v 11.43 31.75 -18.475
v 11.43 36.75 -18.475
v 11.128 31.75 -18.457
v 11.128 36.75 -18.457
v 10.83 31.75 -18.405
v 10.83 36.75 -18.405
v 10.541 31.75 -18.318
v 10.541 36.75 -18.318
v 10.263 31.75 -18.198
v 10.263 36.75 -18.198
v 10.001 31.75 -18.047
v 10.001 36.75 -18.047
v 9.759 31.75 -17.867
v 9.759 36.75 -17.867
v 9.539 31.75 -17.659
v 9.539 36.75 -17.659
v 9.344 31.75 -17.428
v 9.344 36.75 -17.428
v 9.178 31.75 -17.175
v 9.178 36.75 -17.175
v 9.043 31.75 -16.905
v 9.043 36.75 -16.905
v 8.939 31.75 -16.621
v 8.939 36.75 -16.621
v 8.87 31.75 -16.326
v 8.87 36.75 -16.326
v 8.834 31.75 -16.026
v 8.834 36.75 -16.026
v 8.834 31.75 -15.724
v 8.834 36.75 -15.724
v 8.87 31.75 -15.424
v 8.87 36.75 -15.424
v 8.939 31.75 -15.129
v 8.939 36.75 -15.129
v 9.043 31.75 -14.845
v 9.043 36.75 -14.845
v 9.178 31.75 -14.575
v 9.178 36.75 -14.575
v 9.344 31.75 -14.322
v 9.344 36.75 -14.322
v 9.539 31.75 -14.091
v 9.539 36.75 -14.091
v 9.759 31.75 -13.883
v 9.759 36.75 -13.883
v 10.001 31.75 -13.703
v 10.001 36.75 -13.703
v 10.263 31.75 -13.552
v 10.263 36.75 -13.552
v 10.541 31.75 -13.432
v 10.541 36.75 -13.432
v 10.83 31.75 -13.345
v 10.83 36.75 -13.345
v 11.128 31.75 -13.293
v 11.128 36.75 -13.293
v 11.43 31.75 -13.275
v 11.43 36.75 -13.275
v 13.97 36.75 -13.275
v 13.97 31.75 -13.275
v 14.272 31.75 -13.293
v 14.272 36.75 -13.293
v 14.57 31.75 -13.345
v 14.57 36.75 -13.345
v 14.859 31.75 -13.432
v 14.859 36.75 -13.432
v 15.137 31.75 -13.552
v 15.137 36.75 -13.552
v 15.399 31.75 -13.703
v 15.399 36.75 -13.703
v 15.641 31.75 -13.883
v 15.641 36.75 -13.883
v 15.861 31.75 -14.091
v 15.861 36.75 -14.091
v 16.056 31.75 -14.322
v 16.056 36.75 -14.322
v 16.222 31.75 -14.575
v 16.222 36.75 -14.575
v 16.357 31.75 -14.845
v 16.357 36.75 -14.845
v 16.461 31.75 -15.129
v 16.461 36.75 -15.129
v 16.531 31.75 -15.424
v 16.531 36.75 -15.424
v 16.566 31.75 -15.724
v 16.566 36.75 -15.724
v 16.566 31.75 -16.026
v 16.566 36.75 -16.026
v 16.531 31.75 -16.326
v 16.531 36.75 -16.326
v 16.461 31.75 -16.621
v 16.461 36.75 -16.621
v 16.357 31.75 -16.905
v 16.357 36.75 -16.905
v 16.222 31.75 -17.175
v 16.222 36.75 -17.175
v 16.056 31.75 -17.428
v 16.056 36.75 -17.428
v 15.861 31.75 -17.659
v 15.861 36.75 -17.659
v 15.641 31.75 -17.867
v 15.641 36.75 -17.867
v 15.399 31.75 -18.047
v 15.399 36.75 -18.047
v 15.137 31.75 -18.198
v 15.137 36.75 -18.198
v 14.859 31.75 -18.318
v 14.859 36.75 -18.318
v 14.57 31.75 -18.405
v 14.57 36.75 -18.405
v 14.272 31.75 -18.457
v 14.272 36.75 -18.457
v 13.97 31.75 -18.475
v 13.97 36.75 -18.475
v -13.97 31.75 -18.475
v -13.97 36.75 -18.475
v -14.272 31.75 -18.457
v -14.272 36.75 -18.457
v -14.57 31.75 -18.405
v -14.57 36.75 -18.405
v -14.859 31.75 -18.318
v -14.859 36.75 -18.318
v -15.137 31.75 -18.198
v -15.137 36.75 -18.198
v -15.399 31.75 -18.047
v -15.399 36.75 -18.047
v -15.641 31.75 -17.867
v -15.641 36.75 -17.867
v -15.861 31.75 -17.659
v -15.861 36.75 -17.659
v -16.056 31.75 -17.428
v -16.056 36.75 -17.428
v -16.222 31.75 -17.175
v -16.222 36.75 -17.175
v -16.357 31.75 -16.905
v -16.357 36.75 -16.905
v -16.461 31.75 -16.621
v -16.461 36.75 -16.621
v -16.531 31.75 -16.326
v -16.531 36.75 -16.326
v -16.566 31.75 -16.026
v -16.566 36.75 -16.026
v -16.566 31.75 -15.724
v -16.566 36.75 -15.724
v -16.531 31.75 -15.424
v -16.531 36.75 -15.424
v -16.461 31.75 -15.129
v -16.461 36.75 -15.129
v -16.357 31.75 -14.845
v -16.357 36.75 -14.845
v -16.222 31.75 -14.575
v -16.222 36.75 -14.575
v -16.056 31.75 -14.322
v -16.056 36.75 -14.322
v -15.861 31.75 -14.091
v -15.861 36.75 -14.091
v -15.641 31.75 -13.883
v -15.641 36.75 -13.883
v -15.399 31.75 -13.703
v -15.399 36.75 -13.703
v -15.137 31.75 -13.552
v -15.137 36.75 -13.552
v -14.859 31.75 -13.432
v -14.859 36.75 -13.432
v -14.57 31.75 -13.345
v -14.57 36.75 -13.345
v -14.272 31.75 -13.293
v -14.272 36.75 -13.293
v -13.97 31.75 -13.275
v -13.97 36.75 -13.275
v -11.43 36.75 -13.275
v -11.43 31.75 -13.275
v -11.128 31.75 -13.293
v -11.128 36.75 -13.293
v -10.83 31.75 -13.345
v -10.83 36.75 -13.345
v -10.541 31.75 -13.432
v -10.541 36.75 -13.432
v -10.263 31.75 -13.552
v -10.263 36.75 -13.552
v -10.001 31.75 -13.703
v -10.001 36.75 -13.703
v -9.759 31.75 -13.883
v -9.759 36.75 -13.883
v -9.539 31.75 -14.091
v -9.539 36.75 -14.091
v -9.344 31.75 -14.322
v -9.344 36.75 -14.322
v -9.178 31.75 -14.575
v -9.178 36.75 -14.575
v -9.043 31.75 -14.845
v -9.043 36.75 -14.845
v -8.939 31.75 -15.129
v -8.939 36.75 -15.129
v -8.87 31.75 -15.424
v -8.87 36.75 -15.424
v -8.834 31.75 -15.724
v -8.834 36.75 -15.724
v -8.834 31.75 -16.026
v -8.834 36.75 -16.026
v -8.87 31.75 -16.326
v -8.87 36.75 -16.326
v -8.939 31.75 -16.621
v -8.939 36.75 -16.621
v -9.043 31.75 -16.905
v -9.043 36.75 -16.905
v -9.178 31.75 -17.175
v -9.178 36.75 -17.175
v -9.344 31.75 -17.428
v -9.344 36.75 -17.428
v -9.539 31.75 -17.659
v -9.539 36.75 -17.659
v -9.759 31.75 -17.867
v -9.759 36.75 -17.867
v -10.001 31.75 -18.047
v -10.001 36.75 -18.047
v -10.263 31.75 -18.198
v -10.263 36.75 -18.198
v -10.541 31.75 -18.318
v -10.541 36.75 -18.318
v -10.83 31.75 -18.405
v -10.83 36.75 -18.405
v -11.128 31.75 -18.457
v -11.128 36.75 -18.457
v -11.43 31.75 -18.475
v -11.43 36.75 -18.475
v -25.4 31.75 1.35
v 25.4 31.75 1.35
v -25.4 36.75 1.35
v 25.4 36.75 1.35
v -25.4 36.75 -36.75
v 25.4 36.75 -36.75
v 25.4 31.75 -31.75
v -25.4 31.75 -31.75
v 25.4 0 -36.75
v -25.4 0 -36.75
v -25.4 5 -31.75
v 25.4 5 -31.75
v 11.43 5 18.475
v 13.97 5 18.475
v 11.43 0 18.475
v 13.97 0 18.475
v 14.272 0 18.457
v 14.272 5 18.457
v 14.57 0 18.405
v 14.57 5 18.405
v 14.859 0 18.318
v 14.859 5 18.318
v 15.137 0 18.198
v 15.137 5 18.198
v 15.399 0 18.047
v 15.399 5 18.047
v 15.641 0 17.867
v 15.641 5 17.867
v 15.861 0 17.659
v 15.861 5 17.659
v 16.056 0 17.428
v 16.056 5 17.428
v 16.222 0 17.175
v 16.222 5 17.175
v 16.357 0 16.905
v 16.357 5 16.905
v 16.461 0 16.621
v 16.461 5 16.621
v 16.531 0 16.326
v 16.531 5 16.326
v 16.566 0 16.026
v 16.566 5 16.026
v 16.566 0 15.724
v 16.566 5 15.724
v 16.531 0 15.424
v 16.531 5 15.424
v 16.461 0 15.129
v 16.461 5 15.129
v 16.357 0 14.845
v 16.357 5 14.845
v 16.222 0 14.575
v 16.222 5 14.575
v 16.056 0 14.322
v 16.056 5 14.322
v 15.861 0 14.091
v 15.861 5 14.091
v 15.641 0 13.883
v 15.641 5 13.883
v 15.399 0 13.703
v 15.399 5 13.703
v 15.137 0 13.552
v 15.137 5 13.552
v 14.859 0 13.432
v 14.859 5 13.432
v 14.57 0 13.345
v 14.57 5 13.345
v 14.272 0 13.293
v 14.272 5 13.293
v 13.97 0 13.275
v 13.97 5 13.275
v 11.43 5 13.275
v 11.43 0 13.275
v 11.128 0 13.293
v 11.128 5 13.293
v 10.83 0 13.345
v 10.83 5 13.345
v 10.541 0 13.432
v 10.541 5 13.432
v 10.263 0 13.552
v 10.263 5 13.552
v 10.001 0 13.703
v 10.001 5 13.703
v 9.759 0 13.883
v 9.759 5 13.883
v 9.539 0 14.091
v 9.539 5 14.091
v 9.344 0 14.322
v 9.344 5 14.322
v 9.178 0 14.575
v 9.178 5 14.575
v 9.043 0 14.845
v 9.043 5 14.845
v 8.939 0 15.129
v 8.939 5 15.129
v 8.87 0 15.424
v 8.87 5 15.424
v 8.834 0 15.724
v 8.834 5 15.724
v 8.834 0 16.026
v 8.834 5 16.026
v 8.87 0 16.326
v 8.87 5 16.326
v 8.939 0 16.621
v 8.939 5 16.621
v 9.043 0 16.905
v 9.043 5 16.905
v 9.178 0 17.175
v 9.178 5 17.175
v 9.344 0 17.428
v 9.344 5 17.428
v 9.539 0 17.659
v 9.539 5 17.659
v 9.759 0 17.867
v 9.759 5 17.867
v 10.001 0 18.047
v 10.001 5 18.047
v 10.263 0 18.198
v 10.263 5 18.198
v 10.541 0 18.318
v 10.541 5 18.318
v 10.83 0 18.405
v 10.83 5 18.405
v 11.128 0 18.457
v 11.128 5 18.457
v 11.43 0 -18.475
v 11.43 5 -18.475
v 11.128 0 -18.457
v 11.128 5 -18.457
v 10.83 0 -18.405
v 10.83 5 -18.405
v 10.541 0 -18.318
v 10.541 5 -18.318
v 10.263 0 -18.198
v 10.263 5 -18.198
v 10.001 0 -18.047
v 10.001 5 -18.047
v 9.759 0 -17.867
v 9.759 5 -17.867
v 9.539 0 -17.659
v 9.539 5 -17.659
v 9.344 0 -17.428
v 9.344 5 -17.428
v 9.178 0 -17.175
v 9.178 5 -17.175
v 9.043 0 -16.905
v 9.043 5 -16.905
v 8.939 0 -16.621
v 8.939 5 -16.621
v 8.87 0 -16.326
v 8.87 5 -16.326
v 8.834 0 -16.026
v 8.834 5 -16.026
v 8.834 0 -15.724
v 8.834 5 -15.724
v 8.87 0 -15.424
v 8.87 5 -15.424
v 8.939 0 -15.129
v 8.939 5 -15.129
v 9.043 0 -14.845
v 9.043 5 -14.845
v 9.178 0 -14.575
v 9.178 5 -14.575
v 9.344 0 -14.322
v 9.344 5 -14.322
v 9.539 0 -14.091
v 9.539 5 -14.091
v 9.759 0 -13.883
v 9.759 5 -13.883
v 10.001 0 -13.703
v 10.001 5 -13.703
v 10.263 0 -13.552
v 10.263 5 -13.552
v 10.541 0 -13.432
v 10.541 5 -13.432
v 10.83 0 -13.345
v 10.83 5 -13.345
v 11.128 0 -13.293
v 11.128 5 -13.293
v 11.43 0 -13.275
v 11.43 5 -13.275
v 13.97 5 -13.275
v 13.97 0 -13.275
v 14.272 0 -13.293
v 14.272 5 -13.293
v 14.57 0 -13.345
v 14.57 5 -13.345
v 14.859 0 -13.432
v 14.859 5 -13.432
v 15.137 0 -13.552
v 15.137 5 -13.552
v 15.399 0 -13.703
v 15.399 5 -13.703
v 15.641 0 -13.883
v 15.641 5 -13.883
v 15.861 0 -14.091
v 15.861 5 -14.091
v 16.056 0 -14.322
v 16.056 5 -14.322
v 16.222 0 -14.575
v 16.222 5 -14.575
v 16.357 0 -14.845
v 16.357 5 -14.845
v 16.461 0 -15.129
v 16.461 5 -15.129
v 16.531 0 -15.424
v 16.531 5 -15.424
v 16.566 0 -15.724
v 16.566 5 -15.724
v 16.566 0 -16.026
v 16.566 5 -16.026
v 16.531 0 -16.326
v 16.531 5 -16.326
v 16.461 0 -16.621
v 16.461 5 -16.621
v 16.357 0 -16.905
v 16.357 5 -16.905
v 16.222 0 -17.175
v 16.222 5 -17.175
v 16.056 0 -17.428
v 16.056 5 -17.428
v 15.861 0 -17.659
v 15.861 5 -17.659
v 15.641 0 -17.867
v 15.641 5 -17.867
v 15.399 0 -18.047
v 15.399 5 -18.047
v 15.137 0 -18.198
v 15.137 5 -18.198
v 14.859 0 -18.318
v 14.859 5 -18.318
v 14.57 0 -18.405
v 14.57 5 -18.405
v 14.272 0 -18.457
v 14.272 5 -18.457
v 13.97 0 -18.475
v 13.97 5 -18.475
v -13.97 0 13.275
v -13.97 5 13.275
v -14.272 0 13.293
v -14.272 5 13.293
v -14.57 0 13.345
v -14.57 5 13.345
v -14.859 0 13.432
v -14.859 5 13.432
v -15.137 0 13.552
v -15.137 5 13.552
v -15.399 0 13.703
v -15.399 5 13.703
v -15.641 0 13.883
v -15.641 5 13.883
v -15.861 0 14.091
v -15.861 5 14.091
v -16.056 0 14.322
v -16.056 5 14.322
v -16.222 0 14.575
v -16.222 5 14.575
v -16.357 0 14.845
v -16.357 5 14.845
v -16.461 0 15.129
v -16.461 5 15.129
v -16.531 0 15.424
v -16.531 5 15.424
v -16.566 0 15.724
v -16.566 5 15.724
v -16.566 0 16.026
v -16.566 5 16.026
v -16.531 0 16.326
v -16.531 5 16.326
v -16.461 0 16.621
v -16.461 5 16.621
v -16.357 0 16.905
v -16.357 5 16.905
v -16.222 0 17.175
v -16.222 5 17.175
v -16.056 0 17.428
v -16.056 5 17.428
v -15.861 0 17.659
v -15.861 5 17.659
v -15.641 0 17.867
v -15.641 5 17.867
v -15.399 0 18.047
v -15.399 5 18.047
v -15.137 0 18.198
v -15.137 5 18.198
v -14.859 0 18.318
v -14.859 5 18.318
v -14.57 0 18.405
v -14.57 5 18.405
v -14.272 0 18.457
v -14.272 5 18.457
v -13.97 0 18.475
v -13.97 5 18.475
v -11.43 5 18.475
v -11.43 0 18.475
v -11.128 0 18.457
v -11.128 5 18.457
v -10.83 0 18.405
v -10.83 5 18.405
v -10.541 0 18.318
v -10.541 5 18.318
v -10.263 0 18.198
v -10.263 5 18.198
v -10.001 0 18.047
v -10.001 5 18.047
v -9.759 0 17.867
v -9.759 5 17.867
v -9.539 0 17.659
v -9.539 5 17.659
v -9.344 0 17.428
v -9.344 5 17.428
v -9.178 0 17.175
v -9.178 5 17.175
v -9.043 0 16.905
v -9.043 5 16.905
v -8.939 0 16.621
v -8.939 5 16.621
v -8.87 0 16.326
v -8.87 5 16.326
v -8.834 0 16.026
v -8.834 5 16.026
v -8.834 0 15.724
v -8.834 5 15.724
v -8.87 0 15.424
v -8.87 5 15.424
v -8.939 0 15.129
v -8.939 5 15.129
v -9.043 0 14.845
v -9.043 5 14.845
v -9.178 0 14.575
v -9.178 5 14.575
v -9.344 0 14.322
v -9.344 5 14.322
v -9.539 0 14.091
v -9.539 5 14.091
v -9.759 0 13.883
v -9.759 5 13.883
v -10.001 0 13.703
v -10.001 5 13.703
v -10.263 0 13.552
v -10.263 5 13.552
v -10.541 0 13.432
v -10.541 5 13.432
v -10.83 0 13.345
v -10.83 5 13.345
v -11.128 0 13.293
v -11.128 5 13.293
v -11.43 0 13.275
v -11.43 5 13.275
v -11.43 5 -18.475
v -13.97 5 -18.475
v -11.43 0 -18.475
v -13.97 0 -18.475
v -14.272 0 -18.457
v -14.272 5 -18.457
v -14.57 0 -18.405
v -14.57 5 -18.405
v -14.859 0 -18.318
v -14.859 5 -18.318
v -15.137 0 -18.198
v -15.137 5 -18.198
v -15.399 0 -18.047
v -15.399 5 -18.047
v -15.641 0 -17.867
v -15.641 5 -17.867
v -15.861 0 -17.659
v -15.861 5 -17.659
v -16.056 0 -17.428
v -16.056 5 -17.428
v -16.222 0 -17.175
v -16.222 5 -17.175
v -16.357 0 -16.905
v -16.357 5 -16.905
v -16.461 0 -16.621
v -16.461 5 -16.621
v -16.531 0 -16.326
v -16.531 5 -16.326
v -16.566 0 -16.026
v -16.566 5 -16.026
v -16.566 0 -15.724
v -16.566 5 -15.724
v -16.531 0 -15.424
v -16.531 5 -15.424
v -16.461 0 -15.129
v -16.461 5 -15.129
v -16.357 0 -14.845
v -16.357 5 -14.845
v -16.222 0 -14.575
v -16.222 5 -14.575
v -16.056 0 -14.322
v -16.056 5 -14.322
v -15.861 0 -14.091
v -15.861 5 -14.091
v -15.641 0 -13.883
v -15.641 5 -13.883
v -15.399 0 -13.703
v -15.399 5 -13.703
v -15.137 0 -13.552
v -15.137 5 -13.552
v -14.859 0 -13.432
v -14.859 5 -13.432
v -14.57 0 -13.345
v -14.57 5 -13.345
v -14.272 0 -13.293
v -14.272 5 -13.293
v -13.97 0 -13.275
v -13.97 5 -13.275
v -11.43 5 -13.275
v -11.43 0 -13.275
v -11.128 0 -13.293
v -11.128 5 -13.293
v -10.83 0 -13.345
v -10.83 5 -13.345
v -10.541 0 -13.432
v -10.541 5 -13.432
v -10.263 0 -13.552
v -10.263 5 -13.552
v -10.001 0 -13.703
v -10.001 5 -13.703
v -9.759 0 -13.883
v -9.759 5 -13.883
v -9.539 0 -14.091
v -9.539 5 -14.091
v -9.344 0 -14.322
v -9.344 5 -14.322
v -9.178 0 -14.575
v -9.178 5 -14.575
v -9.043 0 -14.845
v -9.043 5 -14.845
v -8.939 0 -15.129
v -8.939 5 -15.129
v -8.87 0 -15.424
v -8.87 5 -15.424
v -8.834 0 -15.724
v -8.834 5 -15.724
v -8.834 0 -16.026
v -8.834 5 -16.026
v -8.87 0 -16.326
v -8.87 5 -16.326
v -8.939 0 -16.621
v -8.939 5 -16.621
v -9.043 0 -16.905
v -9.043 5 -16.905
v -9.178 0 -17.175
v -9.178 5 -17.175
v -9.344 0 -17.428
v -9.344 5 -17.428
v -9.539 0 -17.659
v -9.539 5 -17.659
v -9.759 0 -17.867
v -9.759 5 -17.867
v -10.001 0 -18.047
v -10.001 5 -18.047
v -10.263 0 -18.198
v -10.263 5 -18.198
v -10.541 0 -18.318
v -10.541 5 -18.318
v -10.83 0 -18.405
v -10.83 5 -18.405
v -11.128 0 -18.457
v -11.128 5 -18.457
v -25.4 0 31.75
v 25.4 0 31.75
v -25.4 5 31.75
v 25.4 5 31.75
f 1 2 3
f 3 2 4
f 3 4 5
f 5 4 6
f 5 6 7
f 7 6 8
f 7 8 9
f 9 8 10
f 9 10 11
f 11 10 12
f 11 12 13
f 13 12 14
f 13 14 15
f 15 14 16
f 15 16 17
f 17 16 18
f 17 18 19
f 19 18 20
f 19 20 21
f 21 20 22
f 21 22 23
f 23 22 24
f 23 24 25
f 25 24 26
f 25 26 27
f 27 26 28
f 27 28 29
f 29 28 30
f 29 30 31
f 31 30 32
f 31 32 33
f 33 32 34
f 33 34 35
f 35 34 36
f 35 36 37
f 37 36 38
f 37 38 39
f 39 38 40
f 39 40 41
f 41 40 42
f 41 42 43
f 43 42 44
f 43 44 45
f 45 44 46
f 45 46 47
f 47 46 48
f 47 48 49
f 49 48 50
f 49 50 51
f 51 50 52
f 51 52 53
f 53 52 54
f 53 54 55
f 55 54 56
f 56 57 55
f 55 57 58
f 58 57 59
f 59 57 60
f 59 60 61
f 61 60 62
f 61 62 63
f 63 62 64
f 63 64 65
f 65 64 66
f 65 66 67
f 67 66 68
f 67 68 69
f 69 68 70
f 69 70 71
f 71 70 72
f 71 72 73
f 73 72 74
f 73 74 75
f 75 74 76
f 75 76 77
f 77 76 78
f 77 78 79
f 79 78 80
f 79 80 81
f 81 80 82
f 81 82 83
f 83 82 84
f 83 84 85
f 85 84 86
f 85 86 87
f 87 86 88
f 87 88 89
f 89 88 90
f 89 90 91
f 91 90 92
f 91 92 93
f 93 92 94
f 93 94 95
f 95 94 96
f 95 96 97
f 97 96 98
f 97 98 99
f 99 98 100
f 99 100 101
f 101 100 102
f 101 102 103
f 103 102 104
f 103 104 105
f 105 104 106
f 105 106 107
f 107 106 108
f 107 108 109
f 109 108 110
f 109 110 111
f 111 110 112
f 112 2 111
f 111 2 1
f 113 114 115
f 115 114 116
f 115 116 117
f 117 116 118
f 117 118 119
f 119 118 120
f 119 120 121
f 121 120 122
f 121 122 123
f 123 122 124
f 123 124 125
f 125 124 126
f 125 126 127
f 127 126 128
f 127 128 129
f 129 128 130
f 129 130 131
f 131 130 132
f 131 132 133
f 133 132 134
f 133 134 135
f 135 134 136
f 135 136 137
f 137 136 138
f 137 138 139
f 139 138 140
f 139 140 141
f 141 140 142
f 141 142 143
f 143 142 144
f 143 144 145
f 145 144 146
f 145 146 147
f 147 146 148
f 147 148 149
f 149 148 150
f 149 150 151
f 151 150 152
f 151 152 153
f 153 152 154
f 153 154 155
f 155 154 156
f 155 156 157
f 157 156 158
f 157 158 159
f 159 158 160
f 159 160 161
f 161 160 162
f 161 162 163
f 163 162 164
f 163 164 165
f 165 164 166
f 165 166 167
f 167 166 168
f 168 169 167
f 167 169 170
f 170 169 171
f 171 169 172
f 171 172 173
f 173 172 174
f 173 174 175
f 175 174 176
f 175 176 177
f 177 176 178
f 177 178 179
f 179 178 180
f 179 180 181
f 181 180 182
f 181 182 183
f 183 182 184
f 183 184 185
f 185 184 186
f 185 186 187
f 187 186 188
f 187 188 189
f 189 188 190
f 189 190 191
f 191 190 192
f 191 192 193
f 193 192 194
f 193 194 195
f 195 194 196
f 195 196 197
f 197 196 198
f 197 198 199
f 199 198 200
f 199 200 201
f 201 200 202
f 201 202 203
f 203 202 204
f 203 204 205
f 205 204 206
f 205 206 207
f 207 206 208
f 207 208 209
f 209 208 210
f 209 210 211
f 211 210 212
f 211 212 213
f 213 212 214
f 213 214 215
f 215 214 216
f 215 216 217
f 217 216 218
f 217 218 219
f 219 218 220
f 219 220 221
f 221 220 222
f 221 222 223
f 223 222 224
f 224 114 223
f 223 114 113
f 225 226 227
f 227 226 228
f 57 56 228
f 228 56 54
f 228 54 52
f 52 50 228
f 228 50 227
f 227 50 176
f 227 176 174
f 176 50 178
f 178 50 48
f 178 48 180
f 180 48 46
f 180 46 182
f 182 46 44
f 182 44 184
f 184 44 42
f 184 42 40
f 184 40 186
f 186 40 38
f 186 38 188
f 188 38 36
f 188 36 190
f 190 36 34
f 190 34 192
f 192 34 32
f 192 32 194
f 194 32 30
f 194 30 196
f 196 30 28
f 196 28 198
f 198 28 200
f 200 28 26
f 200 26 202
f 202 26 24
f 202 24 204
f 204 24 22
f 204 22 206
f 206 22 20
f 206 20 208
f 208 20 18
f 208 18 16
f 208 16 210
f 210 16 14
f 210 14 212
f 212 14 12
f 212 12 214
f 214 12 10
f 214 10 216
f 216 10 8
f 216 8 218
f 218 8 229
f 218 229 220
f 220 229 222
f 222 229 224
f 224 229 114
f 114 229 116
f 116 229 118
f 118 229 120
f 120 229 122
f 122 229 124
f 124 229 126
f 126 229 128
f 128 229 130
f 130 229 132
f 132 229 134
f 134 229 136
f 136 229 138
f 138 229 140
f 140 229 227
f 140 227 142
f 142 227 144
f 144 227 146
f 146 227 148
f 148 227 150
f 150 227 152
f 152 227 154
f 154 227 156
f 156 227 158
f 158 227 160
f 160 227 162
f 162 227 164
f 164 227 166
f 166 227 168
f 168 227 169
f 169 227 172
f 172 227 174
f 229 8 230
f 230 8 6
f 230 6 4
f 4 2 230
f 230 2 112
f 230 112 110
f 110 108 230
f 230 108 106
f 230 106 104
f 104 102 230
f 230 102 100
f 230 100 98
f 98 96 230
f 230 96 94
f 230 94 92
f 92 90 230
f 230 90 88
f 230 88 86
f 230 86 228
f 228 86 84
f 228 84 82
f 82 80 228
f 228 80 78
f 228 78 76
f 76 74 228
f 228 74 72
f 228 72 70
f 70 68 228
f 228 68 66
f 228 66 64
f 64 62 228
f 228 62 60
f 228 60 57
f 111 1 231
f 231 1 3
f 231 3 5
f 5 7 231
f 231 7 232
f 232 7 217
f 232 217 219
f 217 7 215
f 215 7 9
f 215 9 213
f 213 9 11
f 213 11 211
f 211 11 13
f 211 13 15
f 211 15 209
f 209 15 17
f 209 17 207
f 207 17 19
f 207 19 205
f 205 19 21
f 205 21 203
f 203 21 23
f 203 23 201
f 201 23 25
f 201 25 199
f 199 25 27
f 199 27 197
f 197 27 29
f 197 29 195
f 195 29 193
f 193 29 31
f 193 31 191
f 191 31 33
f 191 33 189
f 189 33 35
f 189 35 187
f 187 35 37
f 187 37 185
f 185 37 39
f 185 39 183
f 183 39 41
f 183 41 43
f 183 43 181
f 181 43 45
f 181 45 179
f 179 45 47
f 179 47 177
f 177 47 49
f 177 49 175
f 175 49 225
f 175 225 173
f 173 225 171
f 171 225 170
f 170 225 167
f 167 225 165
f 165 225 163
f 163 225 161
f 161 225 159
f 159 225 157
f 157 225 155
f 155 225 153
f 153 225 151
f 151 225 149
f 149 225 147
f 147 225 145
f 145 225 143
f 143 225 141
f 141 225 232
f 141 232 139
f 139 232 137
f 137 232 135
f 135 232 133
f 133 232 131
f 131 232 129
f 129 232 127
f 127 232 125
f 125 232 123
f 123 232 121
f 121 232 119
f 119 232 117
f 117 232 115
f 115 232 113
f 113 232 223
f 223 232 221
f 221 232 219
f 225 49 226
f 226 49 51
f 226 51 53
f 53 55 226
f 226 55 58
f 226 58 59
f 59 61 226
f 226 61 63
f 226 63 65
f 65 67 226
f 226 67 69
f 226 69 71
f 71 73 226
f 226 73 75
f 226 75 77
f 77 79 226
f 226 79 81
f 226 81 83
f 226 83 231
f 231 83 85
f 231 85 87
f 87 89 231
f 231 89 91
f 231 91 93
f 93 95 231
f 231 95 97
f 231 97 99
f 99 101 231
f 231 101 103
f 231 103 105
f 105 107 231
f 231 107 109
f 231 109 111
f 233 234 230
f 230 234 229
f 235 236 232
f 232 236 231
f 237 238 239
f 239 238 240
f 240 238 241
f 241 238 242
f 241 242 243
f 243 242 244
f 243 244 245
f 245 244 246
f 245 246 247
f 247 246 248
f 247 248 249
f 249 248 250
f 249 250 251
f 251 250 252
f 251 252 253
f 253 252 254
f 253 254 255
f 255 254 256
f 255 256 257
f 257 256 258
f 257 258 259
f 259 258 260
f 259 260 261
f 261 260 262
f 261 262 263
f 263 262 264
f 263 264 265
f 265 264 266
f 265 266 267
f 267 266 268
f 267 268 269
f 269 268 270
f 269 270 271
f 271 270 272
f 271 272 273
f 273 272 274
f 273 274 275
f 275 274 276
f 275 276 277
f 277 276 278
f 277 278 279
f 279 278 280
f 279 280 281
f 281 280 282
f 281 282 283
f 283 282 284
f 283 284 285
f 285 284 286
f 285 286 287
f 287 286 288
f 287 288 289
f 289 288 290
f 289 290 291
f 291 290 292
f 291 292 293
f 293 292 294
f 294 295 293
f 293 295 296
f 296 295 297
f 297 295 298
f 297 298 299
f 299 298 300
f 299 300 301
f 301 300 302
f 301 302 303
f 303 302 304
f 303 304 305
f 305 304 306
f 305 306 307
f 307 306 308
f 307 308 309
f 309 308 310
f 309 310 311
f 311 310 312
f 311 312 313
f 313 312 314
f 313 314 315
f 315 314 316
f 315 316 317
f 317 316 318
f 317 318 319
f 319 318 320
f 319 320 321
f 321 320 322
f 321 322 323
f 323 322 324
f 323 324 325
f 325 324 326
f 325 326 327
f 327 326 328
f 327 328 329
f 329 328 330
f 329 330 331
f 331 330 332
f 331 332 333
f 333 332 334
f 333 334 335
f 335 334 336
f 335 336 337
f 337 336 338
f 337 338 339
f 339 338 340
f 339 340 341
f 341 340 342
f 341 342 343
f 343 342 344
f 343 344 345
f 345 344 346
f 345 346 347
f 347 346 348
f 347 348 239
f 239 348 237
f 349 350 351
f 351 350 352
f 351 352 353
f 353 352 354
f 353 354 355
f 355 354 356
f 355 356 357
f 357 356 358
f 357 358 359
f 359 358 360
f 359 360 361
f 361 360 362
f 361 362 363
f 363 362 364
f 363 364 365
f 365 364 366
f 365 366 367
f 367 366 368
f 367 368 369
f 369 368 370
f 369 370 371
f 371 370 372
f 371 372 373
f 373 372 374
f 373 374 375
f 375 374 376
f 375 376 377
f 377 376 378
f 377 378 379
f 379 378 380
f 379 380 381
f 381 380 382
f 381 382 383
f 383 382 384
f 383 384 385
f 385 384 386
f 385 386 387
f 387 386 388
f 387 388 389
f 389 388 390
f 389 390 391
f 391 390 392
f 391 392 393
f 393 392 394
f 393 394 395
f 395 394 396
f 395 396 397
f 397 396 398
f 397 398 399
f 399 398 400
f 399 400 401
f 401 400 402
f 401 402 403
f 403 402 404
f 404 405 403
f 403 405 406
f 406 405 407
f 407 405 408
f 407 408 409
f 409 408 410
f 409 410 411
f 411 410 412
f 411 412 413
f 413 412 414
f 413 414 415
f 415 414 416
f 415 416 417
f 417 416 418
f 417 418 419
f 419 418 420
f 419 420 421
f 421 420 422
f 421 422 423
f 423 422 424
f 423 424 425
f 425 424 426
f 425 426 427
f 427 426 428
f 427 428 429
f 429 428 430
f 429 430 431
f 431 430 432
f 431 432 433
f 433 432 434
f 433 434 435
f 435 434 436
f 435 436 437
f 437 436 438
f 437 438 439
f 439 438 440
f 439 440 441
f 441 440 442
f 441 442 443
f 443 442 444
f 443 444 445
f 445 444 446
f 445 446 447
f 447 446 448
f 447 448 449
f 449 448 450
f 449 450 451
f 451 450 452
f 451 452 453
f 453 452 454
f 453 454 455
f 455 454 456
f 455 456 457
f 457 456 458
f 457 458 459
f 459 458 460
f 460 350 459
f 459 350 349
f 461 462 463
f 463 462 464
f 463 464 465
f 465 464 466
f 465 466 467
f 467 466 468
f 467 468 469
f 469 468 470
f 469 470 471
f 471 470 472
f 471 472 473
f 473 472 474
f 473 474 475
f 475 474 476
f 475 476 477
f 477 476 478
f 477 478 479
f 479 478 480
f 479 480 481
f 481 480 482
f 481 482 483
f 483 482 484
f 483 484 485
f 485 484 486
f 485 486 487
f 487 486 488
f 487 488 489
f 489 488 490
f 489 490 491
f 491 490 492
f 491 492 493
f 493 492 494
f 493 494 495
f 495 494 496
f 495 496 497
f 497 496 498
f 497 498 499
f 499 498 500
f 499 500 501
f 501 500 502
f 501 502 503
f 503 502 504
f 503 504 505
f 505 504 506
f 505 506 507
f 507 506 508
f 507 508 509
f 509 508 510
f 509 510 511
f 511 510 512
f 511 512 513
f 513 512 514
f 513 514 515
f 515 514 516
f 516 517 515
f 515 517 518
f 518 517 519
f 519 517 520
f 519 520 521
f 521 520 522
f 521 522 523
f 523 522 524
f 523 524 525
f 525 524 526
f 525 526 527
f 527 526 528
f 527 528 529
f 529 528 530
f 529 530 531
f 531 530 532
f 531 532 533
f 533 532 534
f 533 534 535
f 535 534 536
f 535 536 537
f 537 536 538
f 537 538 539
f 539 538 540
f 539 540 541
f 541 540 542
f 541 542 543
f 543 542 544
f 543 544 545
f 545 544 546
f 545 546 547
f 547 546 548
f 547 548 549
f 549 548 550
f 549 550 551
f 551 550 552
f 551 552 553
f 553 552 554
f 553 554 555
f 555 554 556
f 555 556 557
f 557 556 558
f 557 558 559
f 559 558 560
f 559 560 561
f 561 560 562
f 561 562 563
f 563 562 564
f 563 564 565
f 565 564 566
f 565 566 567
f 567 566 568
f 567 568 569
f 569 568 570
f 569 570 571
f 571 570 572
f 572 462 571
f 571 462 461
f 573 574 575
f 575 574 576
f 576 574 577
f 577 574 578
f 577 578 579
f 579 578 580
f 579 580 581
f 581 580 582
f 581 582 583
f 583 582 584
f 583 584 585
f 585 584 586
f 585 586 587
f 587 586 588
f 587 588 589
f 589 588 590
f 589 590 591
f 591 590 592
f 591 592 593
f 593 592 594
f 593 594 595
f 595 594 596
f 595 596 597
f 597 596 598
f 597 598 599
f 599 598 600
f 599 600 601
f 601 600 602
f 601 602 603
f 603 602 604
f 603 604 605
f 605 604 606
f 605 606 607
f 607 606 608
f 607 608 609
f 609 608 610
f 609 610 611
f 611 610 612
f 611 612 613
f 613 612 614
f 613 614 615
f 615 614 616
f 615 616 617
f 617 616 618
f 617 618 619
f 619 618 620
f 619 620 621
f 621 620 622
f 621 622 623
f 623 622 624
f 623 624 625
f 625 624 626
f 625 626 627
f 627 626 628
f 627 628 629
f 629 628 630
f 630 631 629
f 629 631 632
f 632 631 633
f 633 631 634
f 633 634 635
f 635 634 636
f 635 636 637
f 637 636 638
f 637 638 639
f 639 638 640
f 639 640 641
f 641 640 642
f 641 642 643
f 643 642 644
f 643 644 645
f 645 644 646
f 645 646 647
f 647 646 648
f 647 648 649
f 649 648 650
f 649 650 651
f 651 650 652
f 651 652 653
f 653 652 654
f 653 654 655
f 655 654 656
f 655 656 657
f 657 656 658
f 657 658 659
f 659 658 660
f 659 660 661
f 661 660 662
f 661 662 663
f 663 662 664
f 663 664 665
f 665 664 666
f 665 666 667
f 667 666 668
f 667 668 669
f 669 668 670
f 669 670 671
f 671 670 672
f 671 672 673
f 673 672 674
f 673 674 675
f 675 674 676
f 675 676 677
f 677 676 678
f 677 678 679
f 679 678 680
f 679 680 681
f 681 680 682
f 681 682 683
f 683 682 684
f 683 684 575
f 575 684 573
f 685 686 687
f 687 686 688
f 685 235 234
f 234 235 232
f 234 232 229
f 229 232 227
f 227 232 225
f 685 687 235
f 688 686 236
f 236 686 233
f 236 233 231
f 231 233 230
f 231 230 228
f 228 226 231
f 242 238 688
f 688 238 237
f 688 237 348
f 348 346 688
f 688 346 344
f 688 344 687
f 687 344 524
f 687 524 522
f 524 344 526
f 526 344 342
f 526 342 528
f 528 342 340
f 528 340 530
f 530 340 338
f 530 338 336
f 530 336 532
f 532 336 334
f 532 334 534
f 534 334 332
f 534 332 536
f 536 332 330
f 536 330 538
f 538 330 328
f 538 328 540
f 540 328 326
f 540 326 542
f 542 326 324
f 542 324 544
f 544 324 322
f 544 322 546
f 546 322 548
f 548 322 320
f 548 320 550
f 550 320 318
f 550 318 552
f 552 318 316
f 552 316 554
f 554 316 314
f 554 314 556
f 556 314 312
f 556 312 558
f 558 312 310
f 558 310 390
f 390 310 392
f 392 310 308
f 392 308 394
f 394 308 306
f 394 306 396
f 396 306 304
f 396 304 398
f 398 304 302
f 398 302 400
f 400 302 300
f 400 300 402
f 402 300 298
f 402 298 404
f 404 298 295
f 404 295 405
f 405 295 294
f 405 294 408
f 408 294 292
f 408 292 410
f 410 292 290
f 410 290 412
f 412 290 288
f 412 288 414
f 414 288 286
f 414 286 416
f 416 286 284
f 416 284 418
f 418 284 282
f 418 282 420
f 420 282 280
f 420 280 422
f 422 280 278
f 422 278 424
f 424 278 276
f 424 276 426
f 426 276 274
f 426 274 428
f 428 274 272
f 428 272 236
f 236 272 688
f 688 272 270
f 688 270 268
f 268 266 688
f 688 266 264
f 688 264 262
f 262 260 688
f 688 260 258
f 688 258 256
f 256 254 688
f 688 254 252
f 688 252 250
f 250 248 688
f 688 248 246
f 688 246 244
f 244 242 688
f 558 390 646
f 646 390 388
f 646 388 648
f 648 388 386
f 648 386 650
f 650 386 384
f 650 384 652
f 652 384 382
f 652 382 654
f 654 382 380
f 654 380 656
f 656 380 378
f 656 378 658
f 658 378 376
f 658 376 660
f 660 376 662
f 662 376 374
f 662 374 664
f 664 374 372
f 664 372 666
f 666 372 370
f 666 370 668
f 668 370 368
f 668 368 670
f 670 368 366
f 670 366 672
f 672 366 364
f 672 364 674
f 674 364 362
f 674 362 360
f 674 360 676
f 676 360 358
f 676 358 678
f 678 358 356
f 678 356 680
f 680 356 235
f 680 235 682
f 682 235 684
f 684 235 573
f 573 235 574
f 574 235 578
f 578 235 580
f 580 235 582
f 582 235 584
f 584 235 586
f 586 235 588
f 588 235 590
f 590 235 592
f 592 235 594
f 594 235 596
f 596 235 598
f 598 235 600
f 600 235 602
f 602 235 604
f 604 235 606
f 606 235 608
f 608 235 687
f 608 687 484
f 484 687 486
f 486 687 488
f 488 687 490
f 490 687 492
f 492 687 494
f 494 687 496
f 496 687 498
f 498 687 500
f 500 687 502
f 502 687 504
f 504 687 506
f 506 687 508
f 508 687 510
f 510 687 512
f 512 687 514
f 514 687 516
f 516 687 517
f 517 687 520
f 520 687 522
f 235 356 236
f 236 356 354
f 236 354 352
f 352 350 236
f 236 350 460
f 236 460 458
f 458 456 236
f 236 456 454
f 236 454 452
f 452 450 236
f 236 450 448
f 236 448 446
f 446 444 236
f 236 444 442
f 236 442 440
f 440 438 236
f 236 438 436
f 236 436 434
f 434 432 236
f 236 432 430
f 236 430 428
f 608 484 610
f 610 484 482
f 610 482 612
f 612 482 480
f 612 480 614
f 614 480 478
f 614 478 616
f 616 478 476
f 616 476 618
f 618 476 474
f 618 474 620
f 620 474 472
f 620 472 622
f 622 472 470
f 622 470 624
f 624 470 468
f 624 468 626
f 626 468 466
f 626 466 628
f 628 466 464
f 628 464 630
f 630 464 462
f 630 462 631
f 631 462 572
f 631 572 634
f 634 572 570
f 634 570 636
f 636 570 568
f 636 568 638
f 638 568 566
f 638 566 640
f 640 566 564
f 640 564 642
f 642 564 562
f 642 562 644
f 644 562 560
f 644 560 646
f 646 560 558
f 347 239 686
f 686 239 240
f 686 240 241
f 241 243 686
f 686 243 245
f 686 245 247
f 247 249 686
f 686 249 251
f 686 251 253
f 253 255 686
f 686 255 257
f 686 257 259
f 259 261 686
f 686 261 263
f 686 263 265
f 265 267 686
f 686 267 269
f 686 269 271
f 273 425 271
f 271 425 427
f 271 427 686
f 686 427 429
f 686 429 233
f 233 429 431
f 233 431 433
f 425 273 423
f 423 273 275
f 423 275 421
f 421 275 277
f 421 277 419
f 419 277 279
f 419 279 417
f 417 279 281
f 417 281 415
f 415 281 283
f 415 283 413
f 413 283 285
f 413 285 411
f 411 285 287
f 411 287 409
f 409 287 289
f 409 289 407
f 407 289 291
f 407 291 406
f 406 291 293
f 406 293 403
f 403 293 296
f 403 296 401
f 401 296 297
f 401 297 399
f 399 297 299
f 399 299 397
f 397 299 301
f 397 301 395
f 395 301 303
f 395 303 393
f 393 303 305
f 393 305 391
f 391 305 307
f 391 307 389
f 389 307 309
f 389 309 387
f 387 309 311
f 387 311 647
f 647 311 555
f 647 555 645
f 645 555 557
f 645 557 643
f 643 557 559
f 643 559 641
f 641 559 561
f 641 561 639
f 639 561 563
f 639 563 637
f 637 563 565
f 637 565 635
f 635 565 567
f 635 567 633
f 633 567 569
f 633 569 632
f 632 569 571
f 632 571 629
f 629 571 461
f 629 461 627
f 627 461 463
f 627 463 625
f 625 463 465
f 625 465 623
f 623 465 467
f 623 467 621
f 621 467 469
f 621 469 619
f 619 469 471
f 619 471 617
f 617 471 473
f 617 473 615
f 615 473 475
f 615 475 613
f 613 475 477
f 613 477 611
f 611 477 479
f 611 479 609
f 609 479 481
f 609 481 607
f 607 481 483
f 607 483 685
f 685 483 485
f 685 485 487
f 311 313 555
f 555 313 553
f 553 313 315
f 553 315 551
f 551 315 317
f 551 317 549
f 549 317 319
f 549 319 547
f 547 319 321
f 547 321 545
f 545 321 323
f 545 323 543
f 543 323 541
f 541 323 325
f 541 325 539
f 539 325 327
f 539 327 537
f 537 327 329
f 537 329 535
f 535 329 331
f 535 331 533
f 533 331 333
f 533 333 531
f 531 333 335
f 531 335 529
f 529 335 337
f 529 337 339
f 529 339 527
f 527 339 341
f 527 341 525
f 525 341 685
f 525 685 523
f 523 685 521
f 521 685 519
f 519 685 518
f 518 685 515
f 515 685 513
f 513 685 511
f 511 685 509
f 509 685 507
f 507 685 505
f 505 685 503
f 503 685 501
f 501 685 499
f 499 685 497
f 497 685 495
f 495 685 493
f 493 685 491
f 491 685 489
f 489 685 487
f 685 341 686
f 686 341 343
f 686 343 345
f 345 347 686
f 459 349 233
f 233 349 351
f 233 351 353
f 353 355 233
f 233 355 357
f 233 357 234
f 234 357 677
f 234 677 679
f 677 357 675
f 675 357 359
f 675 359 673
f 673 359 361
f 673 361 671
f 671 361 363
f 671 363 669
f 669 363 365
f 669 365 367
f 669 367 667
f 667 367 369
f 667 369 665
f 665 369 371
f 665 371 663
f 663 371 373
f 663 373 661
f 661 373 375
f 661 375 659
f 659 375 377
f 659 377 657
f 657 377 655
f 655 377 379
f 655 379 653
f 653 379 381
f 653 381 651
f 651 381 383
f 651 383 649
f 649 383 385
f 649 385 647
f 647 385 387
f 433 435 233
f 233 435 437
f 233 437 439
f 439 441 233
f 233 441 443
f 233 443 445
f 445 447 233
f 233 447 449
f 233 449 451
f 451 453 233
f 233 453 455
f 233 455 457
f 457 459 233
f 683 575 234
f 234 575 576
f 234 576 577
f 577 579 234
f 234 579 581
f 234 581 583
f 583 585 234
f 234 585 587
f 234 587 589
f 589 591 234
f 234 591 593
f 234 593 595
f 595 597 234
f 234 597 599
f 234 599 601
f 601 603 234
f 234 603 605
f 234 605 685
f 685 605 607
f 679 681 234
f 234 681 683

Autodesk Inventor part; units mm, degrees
ref_plane "YZ Plane" through (0, 0, 0) normal (1, 0, 0) x (0, 1, 0)
ref_plane "XZ Plane" through (0, 0, 0) normal (0, 1, 0) x (-1, 0, 0)
ref_plane "XY Plane" through (0, 0, 0) normal (0, 0, 1) x (1, 0, 0)
sketch "Sketch1" plane through (0, 0, 0) normal (0, 1, 0) x (-1, 0, 0)
  line L0 (25.4, 31.75) -> (-25.4, 31.75)
  line L1 (-25.4, 31.75) -> (-25.4, -31.75)
  line L2 (-25.4, -31.75) -> (25.4, -31.75)
  line L3 (25.4, -31.75) -> (25.4, 31.75)
  line L4 (25.4, 31.75) -> (-25.4, -31.75) construction
  line L5 (-25.4, 31.75) -> (25.4, -31.75) construction
  point P0 (0, 0)
  dimension "d0" = 50.8
  dimension "d1" = 63.5
extrude "Extrusion1" add sketch "Sketch1" along normal blind 5
sketch "Sketch2" plane through (0, 5, 0) normal (0, 1, 0) x (1, 0, 0)
  line L0 (25.4, 31.75) -> (-25.4, 31.75) construction
  line L1 (-25.4, -31.75) -> (25.4, -31.75) construction
  line L2 (-25.4, 31.75) -> (-25.4, -31.75) construction
  line L3 (-25.4, 0) -> (25.4, 0) construction
  line L4 (25.4, -31.75) -> (25.4, 31.75) construction
  line L5 (0, 31.75) -> (0, 0) construction
  line L6 (0, 0) -> (0, -31.75) construction
  line L7 (0, 15.875) -> (-25.4, 15.875) construction
  line L8 (-13.97, 15.875) -> (-11.43, 15.875) construction
  line L9 (-13.97, 13.275) -> (-11.43, 13.275)
  line L10 (-11.43, 18.475) -> (-13.97, 18.475)
  arc A0 (-13.97, 18.475) -> (-13.97, 13.275) centre (-13.97, 15.875) ccw
  arc A1 (-11.43, 13.275) -> (-11.43, 18.475) centre (-11.43, 15.875) ccw
  line L11 (0, 15.875) -> (25.4, 15.875) construction
  line L12 (13.97, 13.275) -> (11.43, 13.275)
  line L13 (11.43, 18.475) -> (13.97, 18.475)
  arc A2 (13.97, 13.275) -> (13.97, 18.475) centre (13.97, 15.875) ccw
  arc A3 (11.43, 18.475) -> (11.43, 13.275) centre (11.43, 15.875) ccw
  line L14 (-13.97, -13.275) -> (-11.43, -13.275)
  line L15 (-11.43, -18.475) -> (-13.97, -18.475)
  arc A4 (-13.97, -13.275) -> (-13.97, -18.475) centre (-13.97, -15.875) ccw
  arc A5 (-11.43, -18.475) -> (-11.43, -13.275) centre (-11.43, -15.875) ccw
  arc A6 (11.43, -13.275) -> (11.43, -18.475) centre (11.43, -15.875) ccw
  line L16 (13.97, -13.275) -> (11.43, -13.275)
  line L17 (11.43, -18.475) -> (13.97, -18.475)
  arc A7 (13.97, -18.475) -> (13.97, -13.275) centre (13.97, -15.875) ccw
  point P0 (-12.7, 15.875)
  point P1 (-12.7, 13.275)
  point P2 (-12.7, 18.475)
  dimension "d4" = 11.43
  dimension "d5" = 13.97
  dimension "d6" = 5.2
extrude "Extrusion2" cut sketch "Sketch2" against normal blind 5
sketch "Sketch3" plane through (25.4, 0, -31.75) normal (0, 0, -1) x (-1, 0, 0)
  line L0 (0, 0) -> (50.8, 0) construction
  line L1 (50.8, 0) -> (0, 0)
  line L2 (0, 0) -> (0, 31.75)
  line L3 (0, 31.75) -> (50.8, 31.75)
  line L4 (50.8, 31.75) -> (50.8, 0)
  point P0 (25.4, 0)
  dimension "d9" = 31.75
extrude "Extrusion3" add sketch "Sketch3" along normal blind 5
sketch "Sketch4" plane through (-25.4, 31.75, -31.75) normal (0, 1, 0) x (1, 0, 0)
  line L0 (0, 5) -> (50.8, 5) construction
  line L1 (50.8, -63.5) -> (50.8, 0) construction
  line L2 (0, 5) -> (50.8, 5)
  line L3 (50.8, 5) -> (50.8, -33.1)
  line L4 (50.8, -33.1) -> (0, -33.1)
  line L5 (0, -33.1) -> (0, 5)
  point P0 (25.4, -31.75)
  dimension "d12" = 38.1
extrude "Extrusion4" add sketch "Sketch4" along normal blind 5
sketch "Sketch5" plane through (-25.4, 36.75, -31.75) normal (0, 1, 0) x (1, 0, 0)
  line L0 (39.37, -50.225) -> (36.83, -50.225) construction
  arc A0 (36.83, -45.025) -> (36.83, -50.225) centre (36.83, -47.625) ccw construction
  line L1 (36.83, -45.025) -> (39.37, -45.025) construction
  arc A1 (39.37, -50.225) -> (39.37, -45.025) centre (39.37, -47.625) ccw construction
  arc A2 (36.83, -13.275) -> (36.83, -18.475) centre (36.83, -15.875) ccw projected
  line L2 (36.83, -13.275) -> (39.37, -13.275) projected
  arc A3 (39.37, -18.475) -> (39.37, -13.275) centre (39.37, -15.875) ccw projected
  line L3 (39.37, -18.475) -> (36.83, -18.475) projected
  arc A4 (11.43, -45.025) -> (11.43, -50.225) centre (11.43, -47.625) ccw construction
  line L4 (11.43, -45.025) -> (13.97, -45.025) construction
  arc A5 (13.97, -50.225) -> (13.97, -45.025) centre (13.97, -47.625) ccw construction
  line L5 (13.97, -50.225) -> (11.43, -50.225) construction
  line L6 (11.43, -13.275) -> (13.97, -13.275) projected
  arc A6 (13.97, -18.475) -> (13.97, -13.275) centre (13.97, -15.875) ccw projected
  line L7 (13.97, -18.475) -> (11.43, -18.475) projected
  arc A7 (11.43, -13.275) -> (11.43, -18.475) centre (11.43, -15.875) ccw projected
  line L8 (50.8, -63.5) -> (50.8, 0) construction
  line L9 (50.8, 0) -> (0, 0) construction
  line L10 (0, 0) -> (0, -63.5) construction
  line L11 (0, -63.5) -> (50.8, -63.5) construction
  point P0 (25.4, -31.75)
extrude "Extrusion5" cut sketch "Sketch5" against normal blind 5
properties part number "hanging_bracket_t-slot-2inx1in"
